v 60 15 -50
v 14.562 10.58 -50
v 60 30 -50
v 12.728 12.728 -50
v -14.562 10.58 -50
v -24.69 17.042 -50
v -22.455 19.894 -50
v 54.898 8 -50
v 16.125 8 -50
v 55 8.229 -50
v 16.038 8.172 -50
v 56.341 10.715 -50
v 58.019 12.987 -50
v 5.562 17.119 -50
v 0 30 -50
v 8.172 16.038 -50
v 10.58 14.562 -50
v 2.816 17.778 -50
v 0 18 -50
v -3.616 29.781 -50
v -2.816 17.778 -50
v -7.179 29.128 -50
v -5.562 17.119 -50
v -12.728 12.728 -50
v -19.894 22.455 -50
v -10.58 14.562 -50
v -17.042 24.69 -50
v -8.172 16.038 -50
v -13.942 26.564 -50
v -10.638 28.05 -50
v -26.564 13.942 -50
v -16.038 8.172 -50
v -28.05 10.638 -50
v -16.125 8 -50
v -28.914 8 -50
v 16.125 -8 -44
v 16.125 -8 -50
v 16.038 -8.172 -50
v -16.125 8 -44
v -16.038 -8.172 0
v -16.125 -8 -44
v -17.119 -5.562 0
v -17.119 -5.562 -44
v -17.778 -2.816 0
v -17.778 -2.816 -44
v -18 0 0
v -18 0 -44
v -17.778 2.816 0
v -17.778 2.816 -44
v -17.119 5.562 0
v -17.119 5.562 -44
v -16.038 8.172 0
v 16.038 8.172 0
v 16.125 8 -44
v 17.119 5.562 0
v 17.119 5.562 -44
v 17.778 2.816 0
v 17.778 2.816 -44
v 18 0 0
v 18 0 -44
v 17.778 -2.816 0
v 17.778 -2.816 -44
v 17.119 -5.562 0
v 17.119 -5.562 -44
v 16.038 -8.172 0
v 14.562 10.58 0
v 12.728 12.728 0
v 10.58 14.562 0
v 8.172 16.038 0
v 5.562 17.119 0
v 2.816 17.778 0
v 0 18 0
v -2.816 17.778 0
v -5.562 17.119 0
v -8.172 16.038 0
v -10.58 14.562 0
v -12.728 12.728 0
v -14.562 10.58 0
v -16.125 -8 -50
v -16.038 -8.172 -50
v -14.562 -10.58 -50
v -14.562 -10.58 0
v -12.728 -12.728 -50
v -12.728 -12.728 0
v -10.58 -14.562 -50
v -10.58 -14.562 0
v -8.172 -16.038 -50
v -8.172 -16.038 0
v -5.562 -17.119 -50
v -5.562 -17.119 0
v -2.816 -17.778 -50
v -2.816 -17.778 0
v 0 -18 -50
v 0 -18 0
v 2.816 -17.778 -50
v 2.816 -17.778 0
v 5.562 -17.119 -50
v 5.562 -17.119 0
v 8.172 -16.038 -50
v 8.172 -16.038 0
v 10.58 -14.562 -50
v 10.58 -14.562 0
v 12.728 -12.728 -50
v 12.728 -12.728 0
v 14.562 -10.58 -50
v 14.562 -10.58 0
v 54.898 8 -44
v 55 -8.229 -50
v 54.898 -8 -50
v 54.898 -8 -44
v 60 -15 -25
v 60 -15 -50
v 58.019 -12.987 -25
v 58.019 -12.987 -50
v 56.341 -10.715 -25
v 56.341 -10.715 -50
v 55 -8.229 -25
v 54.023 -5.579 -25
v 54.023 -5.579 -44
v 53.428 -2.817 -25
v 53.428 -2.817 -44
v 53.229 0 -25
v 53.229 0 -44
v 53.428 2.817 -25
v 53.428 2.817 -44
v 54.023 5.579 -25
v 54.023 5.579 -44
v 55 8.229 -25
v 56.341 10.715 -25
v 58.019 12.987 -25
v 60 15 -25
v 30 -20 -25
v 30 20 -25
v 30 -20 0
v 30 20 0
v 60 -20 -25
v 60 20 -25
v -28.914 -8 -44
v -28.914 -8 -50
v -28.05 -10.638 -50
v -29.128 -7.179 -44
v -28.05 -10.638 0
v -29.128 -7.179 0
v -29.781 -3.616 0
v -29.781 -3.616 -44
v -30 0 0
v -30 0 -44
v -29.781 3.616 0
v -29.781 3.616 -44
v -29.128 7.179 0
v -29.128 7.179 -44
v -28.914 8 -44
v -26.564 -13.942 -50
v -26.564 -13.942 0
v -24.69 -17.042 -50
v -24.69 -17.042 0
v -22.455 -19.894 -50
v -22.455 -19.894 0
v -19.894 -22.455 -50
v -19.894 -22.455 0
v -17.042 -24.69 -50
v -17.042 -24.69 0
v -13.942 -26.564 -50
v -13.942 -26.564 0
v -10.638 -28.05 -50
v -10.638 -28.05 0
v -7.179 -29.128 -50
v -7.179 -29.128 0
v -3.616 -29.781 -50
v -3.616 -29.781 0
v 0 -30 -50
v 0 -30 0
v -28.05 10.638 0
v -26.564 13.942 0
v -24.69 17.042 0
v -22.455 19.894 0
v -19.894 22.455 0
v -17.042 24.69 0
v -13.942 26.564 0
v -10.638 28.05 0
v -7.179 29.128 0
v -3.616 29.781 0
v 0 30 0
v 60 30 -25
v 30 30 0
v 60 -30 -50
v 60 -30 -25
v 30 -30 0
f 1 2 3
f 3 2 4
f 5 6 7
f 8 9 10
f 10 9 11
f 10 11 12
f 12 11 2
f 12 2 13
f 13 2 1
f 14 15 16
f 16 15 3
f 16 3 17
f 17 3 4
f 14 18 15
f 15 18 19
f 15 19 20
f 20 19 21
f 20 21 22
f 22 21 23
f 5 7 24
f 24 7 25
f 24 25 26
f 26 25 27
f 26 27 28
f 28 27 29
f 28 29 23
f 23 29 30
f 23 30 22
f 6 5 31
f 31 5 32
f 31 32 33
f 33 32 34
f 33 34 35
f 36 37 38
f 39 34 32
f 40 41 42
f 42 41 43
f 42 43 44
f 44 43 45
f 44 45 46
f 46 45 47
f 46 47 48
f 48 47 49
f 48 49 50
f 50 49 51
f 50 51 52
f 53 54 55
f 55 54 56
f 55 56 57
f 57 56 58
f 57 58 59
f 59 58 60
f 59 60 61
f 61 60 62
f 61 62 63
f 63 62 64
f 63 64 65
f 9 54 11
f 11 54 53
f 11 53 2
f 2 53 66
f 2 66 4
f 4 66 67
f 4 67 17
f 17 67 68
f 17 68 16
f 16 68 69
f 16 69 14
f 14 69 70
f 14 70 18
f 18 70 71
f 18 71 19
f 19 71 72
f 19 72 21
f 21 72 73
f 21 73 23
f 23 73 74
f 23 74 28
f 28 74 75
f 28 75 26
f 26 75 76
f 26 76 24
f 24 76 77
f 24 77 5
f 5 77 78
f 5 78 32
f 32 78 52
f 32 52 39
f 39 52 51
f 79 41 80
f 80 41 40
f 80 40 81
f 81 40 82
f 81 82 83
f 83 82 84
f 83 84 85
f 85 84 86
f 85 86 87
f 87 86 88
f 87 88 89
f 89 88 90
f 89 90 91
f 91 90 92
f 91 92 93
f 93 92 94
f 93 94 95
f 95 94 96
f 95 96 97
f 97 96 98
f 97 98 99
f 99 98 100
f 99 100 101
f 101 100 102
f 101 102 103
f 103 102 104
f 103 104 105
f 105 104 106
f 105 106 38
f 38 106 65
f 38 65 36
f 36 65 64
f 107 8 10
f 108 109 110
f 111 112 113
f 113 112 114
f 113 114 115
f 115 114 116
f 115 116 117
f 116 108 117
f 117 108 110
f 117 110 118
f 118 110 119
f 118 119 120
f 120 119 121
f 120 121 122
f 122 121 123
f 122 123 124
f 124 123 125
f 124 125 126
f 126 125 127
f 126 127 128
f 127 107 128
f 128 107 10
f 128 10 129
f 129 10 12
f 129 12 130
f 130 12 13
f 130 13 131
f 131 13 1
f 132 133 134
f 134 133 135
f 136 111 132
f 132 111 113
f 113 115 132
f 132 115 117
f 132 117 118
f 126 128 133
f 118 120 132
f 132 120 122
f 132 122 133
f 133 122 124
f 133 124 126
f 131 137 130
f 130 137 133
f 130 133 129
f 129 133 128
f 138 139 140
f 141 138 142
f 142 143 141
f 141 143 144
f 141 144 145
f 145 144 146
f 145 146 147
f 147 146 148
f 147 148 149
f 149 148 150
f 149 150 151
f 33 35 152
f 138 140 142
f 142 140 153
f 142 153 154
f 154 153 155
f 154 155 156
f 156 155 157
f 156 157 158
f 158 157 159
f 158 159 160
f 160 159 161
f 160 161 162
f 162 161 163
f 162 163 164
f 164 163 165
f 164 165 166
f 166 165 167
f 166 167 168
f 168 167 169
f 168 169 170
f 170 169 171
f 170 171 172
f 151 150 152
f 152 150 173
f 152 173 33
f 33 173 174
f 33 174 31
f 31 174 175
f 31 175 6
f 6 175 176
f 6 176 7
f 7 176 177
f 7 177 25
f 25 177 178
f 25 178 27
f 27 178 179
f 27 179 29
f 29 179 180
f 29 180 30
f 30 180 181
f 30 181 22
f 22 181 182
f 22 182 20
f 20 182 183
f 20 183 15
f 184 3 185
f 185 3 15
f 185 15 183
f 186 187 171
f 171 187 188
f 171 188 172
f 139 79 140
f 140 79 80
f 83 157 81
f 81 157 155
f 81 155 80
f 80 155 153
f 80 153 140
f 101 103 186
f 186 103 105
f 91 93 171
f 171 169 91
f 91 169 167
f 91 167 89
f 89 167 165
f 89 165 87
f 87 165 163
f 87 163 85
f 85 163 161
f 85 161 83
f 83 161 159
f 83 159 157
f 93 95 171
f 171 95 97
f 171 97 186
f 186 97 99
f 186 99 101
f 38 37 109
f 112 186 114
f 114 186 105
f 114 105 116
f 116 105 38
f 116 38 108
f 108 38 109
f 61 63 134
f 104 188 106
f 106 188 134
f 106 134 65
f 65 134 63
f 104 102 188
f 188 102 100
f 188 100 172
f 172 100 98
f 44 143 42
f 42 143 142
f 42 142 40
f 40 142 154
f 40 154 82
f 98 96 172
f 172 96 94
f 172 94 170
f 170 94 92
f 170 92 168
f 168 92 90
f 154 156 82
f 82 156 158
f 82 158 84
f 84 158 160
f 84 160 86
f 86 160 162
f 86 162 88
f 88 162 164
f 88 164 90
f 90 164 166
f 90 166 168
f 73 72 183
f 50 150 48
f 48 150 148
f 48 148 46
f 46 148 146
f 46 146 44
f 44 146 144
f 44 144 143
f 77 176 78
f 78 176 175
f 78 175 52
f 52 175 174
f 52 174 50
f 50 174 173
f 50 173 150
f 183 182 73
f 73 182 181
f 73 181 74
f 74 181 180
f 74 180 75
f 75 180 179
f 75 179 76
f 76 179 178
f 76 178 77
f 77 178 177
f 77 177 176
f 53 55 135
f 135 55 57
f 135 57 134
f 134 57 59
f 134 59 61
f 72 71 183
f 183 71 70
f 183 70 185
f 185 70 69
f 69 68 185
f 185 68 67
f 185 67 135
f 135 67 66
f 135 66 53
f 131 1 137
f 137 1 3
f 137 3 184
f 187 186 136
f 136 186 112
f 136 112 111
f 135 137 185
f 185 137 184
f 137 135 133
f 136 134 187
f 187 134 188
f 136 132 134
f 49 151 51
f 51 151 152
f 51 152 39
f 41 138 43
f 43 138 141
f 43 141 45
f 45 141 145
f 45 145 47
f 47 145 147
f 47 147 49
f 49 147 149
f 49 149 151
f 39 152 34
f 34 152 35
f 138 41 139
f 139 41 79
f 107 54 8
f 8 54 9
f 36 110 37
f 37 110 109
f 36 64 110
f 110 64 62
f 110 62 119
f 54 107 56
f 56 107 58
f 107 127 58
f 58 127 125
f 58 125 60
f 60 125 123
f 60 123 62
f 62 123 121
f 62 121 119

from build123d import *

# Parameters (mm, degrees)
SKETCH1_R           = 18
BOSS_EXTRUDE1_DEPTH = 50
BOSS_EXTRUDE3_DEPTH = 25
BOSS_EXTRUDE4_DEPTH = 10
BOSS_EXTRUDE5_DEPTH = 10
CUT_EXTRUDE2_START  = -6
CUT_EXTRUDE2_DEPTH  = 6
CUT_EXTRUDE3_DEPTH  = 6


with BuildPart() as part:
    # Sketch1 → Boss-Extrude1 (new body)
    with BuildSketch(Plane.XY):
        with BuildLine():
            Line((0, 30), (30, 30))
            Line((30, 30), (30, -30))
            Line((30, -30), (0, -30))
            ThreePointArc((0, -30), (-30, 0), (0, 30))
        make_face()
        Circle(SKETCH1_R, mode=Mode.SUBTRACT)
    extrude(amount=-BOSS_EXTRUDE1_DEPTH)

    # Sketch2 → Boss-Extrude3 (add)
    with BuildSketch(Plane(origin=(0, 0, -50), x_dir=(-1, 0, 0), z_dir=(0, 0, -1))):
        with BuildLine():
            Line((-60, -30), (-30, -30))
            Line((-30, -30), (-30, 30))
            Line((-30, 30), (-60, 30))
            Line((-60, 30), (-60, 15))
            ThreePointArc((-60, 15), (-53.228756555, 0), (-60, -15))
            Line((-60, -15), (-60, -30))
        make_face()
    extrude(amount=-BOSS_EXTRUDE3_DEPTH)

    # Sketch6 → Boss-Extrude4 (add)
    with BuildSketch(Plane(origin=(0, 30, 0), x_dir=(1, 0, 0), z_dir=(0, 1, 0))):
        Polygon((60, 25), (30, 0), (30, 25), align=None)
    extrude(amount=-BOSS_EXTRUDE4_DEPTH)

    # Sketch11 → Boss-Extrude5 (add)
    with BuildSketch(Plane(origin=(0, -30, 0), x_dir=(-1, 0, 0), z_dir=(0, -1, 0))):
        Polygon((-30, 0), (-30, 25), (-60, 25), align=None)
    extrude(amount=-BOSS_EXTRUDE5_DEPTH)

    # Sketch12 → Cut-Extrude2 (cut)
    with BuildSketch(Plane(origin=(0, 0, -50), x_dir=(-1, 0, 0), z_dir=(0, 0, -1)).offset(CUT_EXTRUDE2_START)):
        with BuildLine():
            Line((28.91366459, 8), (16.124515497, 8))
            ThreePointArc((16.124515497, 8), (-18, 0), (16.124515497, -8))
            Line((16.124515497, -8), (28.91366459, -8))
            ThreePointArc((28.91366459, -8), (30, 0), (28.91366459, 8))
        make_face()
    extrude(amount=CUT_EXTRUDE2_DEPTH, mode=Mode.SUBTRACT)

    # Sketch12<8> → Cut-Extrude3 (cut)
    with BuildSketch(Plane(origin=(0, 0, -50), x_dir=(-1, 0, 0), z_dir=(0, 0, -1))):
        with BuildLine():
            Line((-16.124515497, 8), (-54.898453775, 8))
            ThreePointArc((-54.898453775, 8), (-53.228756555, 0), (-54.898453775, -8))
            Line((-54.898453775, -8), (-16.124515497, -8))
            ThreePointArc((-16.124515497, -8), (-18, 0), (-16.124515497, 8))
        make_face()
    extrude(amount=-CUT_EXTRUDE3_DEPTH, mode=Mode.SUBTRACT)


solid = part.part
